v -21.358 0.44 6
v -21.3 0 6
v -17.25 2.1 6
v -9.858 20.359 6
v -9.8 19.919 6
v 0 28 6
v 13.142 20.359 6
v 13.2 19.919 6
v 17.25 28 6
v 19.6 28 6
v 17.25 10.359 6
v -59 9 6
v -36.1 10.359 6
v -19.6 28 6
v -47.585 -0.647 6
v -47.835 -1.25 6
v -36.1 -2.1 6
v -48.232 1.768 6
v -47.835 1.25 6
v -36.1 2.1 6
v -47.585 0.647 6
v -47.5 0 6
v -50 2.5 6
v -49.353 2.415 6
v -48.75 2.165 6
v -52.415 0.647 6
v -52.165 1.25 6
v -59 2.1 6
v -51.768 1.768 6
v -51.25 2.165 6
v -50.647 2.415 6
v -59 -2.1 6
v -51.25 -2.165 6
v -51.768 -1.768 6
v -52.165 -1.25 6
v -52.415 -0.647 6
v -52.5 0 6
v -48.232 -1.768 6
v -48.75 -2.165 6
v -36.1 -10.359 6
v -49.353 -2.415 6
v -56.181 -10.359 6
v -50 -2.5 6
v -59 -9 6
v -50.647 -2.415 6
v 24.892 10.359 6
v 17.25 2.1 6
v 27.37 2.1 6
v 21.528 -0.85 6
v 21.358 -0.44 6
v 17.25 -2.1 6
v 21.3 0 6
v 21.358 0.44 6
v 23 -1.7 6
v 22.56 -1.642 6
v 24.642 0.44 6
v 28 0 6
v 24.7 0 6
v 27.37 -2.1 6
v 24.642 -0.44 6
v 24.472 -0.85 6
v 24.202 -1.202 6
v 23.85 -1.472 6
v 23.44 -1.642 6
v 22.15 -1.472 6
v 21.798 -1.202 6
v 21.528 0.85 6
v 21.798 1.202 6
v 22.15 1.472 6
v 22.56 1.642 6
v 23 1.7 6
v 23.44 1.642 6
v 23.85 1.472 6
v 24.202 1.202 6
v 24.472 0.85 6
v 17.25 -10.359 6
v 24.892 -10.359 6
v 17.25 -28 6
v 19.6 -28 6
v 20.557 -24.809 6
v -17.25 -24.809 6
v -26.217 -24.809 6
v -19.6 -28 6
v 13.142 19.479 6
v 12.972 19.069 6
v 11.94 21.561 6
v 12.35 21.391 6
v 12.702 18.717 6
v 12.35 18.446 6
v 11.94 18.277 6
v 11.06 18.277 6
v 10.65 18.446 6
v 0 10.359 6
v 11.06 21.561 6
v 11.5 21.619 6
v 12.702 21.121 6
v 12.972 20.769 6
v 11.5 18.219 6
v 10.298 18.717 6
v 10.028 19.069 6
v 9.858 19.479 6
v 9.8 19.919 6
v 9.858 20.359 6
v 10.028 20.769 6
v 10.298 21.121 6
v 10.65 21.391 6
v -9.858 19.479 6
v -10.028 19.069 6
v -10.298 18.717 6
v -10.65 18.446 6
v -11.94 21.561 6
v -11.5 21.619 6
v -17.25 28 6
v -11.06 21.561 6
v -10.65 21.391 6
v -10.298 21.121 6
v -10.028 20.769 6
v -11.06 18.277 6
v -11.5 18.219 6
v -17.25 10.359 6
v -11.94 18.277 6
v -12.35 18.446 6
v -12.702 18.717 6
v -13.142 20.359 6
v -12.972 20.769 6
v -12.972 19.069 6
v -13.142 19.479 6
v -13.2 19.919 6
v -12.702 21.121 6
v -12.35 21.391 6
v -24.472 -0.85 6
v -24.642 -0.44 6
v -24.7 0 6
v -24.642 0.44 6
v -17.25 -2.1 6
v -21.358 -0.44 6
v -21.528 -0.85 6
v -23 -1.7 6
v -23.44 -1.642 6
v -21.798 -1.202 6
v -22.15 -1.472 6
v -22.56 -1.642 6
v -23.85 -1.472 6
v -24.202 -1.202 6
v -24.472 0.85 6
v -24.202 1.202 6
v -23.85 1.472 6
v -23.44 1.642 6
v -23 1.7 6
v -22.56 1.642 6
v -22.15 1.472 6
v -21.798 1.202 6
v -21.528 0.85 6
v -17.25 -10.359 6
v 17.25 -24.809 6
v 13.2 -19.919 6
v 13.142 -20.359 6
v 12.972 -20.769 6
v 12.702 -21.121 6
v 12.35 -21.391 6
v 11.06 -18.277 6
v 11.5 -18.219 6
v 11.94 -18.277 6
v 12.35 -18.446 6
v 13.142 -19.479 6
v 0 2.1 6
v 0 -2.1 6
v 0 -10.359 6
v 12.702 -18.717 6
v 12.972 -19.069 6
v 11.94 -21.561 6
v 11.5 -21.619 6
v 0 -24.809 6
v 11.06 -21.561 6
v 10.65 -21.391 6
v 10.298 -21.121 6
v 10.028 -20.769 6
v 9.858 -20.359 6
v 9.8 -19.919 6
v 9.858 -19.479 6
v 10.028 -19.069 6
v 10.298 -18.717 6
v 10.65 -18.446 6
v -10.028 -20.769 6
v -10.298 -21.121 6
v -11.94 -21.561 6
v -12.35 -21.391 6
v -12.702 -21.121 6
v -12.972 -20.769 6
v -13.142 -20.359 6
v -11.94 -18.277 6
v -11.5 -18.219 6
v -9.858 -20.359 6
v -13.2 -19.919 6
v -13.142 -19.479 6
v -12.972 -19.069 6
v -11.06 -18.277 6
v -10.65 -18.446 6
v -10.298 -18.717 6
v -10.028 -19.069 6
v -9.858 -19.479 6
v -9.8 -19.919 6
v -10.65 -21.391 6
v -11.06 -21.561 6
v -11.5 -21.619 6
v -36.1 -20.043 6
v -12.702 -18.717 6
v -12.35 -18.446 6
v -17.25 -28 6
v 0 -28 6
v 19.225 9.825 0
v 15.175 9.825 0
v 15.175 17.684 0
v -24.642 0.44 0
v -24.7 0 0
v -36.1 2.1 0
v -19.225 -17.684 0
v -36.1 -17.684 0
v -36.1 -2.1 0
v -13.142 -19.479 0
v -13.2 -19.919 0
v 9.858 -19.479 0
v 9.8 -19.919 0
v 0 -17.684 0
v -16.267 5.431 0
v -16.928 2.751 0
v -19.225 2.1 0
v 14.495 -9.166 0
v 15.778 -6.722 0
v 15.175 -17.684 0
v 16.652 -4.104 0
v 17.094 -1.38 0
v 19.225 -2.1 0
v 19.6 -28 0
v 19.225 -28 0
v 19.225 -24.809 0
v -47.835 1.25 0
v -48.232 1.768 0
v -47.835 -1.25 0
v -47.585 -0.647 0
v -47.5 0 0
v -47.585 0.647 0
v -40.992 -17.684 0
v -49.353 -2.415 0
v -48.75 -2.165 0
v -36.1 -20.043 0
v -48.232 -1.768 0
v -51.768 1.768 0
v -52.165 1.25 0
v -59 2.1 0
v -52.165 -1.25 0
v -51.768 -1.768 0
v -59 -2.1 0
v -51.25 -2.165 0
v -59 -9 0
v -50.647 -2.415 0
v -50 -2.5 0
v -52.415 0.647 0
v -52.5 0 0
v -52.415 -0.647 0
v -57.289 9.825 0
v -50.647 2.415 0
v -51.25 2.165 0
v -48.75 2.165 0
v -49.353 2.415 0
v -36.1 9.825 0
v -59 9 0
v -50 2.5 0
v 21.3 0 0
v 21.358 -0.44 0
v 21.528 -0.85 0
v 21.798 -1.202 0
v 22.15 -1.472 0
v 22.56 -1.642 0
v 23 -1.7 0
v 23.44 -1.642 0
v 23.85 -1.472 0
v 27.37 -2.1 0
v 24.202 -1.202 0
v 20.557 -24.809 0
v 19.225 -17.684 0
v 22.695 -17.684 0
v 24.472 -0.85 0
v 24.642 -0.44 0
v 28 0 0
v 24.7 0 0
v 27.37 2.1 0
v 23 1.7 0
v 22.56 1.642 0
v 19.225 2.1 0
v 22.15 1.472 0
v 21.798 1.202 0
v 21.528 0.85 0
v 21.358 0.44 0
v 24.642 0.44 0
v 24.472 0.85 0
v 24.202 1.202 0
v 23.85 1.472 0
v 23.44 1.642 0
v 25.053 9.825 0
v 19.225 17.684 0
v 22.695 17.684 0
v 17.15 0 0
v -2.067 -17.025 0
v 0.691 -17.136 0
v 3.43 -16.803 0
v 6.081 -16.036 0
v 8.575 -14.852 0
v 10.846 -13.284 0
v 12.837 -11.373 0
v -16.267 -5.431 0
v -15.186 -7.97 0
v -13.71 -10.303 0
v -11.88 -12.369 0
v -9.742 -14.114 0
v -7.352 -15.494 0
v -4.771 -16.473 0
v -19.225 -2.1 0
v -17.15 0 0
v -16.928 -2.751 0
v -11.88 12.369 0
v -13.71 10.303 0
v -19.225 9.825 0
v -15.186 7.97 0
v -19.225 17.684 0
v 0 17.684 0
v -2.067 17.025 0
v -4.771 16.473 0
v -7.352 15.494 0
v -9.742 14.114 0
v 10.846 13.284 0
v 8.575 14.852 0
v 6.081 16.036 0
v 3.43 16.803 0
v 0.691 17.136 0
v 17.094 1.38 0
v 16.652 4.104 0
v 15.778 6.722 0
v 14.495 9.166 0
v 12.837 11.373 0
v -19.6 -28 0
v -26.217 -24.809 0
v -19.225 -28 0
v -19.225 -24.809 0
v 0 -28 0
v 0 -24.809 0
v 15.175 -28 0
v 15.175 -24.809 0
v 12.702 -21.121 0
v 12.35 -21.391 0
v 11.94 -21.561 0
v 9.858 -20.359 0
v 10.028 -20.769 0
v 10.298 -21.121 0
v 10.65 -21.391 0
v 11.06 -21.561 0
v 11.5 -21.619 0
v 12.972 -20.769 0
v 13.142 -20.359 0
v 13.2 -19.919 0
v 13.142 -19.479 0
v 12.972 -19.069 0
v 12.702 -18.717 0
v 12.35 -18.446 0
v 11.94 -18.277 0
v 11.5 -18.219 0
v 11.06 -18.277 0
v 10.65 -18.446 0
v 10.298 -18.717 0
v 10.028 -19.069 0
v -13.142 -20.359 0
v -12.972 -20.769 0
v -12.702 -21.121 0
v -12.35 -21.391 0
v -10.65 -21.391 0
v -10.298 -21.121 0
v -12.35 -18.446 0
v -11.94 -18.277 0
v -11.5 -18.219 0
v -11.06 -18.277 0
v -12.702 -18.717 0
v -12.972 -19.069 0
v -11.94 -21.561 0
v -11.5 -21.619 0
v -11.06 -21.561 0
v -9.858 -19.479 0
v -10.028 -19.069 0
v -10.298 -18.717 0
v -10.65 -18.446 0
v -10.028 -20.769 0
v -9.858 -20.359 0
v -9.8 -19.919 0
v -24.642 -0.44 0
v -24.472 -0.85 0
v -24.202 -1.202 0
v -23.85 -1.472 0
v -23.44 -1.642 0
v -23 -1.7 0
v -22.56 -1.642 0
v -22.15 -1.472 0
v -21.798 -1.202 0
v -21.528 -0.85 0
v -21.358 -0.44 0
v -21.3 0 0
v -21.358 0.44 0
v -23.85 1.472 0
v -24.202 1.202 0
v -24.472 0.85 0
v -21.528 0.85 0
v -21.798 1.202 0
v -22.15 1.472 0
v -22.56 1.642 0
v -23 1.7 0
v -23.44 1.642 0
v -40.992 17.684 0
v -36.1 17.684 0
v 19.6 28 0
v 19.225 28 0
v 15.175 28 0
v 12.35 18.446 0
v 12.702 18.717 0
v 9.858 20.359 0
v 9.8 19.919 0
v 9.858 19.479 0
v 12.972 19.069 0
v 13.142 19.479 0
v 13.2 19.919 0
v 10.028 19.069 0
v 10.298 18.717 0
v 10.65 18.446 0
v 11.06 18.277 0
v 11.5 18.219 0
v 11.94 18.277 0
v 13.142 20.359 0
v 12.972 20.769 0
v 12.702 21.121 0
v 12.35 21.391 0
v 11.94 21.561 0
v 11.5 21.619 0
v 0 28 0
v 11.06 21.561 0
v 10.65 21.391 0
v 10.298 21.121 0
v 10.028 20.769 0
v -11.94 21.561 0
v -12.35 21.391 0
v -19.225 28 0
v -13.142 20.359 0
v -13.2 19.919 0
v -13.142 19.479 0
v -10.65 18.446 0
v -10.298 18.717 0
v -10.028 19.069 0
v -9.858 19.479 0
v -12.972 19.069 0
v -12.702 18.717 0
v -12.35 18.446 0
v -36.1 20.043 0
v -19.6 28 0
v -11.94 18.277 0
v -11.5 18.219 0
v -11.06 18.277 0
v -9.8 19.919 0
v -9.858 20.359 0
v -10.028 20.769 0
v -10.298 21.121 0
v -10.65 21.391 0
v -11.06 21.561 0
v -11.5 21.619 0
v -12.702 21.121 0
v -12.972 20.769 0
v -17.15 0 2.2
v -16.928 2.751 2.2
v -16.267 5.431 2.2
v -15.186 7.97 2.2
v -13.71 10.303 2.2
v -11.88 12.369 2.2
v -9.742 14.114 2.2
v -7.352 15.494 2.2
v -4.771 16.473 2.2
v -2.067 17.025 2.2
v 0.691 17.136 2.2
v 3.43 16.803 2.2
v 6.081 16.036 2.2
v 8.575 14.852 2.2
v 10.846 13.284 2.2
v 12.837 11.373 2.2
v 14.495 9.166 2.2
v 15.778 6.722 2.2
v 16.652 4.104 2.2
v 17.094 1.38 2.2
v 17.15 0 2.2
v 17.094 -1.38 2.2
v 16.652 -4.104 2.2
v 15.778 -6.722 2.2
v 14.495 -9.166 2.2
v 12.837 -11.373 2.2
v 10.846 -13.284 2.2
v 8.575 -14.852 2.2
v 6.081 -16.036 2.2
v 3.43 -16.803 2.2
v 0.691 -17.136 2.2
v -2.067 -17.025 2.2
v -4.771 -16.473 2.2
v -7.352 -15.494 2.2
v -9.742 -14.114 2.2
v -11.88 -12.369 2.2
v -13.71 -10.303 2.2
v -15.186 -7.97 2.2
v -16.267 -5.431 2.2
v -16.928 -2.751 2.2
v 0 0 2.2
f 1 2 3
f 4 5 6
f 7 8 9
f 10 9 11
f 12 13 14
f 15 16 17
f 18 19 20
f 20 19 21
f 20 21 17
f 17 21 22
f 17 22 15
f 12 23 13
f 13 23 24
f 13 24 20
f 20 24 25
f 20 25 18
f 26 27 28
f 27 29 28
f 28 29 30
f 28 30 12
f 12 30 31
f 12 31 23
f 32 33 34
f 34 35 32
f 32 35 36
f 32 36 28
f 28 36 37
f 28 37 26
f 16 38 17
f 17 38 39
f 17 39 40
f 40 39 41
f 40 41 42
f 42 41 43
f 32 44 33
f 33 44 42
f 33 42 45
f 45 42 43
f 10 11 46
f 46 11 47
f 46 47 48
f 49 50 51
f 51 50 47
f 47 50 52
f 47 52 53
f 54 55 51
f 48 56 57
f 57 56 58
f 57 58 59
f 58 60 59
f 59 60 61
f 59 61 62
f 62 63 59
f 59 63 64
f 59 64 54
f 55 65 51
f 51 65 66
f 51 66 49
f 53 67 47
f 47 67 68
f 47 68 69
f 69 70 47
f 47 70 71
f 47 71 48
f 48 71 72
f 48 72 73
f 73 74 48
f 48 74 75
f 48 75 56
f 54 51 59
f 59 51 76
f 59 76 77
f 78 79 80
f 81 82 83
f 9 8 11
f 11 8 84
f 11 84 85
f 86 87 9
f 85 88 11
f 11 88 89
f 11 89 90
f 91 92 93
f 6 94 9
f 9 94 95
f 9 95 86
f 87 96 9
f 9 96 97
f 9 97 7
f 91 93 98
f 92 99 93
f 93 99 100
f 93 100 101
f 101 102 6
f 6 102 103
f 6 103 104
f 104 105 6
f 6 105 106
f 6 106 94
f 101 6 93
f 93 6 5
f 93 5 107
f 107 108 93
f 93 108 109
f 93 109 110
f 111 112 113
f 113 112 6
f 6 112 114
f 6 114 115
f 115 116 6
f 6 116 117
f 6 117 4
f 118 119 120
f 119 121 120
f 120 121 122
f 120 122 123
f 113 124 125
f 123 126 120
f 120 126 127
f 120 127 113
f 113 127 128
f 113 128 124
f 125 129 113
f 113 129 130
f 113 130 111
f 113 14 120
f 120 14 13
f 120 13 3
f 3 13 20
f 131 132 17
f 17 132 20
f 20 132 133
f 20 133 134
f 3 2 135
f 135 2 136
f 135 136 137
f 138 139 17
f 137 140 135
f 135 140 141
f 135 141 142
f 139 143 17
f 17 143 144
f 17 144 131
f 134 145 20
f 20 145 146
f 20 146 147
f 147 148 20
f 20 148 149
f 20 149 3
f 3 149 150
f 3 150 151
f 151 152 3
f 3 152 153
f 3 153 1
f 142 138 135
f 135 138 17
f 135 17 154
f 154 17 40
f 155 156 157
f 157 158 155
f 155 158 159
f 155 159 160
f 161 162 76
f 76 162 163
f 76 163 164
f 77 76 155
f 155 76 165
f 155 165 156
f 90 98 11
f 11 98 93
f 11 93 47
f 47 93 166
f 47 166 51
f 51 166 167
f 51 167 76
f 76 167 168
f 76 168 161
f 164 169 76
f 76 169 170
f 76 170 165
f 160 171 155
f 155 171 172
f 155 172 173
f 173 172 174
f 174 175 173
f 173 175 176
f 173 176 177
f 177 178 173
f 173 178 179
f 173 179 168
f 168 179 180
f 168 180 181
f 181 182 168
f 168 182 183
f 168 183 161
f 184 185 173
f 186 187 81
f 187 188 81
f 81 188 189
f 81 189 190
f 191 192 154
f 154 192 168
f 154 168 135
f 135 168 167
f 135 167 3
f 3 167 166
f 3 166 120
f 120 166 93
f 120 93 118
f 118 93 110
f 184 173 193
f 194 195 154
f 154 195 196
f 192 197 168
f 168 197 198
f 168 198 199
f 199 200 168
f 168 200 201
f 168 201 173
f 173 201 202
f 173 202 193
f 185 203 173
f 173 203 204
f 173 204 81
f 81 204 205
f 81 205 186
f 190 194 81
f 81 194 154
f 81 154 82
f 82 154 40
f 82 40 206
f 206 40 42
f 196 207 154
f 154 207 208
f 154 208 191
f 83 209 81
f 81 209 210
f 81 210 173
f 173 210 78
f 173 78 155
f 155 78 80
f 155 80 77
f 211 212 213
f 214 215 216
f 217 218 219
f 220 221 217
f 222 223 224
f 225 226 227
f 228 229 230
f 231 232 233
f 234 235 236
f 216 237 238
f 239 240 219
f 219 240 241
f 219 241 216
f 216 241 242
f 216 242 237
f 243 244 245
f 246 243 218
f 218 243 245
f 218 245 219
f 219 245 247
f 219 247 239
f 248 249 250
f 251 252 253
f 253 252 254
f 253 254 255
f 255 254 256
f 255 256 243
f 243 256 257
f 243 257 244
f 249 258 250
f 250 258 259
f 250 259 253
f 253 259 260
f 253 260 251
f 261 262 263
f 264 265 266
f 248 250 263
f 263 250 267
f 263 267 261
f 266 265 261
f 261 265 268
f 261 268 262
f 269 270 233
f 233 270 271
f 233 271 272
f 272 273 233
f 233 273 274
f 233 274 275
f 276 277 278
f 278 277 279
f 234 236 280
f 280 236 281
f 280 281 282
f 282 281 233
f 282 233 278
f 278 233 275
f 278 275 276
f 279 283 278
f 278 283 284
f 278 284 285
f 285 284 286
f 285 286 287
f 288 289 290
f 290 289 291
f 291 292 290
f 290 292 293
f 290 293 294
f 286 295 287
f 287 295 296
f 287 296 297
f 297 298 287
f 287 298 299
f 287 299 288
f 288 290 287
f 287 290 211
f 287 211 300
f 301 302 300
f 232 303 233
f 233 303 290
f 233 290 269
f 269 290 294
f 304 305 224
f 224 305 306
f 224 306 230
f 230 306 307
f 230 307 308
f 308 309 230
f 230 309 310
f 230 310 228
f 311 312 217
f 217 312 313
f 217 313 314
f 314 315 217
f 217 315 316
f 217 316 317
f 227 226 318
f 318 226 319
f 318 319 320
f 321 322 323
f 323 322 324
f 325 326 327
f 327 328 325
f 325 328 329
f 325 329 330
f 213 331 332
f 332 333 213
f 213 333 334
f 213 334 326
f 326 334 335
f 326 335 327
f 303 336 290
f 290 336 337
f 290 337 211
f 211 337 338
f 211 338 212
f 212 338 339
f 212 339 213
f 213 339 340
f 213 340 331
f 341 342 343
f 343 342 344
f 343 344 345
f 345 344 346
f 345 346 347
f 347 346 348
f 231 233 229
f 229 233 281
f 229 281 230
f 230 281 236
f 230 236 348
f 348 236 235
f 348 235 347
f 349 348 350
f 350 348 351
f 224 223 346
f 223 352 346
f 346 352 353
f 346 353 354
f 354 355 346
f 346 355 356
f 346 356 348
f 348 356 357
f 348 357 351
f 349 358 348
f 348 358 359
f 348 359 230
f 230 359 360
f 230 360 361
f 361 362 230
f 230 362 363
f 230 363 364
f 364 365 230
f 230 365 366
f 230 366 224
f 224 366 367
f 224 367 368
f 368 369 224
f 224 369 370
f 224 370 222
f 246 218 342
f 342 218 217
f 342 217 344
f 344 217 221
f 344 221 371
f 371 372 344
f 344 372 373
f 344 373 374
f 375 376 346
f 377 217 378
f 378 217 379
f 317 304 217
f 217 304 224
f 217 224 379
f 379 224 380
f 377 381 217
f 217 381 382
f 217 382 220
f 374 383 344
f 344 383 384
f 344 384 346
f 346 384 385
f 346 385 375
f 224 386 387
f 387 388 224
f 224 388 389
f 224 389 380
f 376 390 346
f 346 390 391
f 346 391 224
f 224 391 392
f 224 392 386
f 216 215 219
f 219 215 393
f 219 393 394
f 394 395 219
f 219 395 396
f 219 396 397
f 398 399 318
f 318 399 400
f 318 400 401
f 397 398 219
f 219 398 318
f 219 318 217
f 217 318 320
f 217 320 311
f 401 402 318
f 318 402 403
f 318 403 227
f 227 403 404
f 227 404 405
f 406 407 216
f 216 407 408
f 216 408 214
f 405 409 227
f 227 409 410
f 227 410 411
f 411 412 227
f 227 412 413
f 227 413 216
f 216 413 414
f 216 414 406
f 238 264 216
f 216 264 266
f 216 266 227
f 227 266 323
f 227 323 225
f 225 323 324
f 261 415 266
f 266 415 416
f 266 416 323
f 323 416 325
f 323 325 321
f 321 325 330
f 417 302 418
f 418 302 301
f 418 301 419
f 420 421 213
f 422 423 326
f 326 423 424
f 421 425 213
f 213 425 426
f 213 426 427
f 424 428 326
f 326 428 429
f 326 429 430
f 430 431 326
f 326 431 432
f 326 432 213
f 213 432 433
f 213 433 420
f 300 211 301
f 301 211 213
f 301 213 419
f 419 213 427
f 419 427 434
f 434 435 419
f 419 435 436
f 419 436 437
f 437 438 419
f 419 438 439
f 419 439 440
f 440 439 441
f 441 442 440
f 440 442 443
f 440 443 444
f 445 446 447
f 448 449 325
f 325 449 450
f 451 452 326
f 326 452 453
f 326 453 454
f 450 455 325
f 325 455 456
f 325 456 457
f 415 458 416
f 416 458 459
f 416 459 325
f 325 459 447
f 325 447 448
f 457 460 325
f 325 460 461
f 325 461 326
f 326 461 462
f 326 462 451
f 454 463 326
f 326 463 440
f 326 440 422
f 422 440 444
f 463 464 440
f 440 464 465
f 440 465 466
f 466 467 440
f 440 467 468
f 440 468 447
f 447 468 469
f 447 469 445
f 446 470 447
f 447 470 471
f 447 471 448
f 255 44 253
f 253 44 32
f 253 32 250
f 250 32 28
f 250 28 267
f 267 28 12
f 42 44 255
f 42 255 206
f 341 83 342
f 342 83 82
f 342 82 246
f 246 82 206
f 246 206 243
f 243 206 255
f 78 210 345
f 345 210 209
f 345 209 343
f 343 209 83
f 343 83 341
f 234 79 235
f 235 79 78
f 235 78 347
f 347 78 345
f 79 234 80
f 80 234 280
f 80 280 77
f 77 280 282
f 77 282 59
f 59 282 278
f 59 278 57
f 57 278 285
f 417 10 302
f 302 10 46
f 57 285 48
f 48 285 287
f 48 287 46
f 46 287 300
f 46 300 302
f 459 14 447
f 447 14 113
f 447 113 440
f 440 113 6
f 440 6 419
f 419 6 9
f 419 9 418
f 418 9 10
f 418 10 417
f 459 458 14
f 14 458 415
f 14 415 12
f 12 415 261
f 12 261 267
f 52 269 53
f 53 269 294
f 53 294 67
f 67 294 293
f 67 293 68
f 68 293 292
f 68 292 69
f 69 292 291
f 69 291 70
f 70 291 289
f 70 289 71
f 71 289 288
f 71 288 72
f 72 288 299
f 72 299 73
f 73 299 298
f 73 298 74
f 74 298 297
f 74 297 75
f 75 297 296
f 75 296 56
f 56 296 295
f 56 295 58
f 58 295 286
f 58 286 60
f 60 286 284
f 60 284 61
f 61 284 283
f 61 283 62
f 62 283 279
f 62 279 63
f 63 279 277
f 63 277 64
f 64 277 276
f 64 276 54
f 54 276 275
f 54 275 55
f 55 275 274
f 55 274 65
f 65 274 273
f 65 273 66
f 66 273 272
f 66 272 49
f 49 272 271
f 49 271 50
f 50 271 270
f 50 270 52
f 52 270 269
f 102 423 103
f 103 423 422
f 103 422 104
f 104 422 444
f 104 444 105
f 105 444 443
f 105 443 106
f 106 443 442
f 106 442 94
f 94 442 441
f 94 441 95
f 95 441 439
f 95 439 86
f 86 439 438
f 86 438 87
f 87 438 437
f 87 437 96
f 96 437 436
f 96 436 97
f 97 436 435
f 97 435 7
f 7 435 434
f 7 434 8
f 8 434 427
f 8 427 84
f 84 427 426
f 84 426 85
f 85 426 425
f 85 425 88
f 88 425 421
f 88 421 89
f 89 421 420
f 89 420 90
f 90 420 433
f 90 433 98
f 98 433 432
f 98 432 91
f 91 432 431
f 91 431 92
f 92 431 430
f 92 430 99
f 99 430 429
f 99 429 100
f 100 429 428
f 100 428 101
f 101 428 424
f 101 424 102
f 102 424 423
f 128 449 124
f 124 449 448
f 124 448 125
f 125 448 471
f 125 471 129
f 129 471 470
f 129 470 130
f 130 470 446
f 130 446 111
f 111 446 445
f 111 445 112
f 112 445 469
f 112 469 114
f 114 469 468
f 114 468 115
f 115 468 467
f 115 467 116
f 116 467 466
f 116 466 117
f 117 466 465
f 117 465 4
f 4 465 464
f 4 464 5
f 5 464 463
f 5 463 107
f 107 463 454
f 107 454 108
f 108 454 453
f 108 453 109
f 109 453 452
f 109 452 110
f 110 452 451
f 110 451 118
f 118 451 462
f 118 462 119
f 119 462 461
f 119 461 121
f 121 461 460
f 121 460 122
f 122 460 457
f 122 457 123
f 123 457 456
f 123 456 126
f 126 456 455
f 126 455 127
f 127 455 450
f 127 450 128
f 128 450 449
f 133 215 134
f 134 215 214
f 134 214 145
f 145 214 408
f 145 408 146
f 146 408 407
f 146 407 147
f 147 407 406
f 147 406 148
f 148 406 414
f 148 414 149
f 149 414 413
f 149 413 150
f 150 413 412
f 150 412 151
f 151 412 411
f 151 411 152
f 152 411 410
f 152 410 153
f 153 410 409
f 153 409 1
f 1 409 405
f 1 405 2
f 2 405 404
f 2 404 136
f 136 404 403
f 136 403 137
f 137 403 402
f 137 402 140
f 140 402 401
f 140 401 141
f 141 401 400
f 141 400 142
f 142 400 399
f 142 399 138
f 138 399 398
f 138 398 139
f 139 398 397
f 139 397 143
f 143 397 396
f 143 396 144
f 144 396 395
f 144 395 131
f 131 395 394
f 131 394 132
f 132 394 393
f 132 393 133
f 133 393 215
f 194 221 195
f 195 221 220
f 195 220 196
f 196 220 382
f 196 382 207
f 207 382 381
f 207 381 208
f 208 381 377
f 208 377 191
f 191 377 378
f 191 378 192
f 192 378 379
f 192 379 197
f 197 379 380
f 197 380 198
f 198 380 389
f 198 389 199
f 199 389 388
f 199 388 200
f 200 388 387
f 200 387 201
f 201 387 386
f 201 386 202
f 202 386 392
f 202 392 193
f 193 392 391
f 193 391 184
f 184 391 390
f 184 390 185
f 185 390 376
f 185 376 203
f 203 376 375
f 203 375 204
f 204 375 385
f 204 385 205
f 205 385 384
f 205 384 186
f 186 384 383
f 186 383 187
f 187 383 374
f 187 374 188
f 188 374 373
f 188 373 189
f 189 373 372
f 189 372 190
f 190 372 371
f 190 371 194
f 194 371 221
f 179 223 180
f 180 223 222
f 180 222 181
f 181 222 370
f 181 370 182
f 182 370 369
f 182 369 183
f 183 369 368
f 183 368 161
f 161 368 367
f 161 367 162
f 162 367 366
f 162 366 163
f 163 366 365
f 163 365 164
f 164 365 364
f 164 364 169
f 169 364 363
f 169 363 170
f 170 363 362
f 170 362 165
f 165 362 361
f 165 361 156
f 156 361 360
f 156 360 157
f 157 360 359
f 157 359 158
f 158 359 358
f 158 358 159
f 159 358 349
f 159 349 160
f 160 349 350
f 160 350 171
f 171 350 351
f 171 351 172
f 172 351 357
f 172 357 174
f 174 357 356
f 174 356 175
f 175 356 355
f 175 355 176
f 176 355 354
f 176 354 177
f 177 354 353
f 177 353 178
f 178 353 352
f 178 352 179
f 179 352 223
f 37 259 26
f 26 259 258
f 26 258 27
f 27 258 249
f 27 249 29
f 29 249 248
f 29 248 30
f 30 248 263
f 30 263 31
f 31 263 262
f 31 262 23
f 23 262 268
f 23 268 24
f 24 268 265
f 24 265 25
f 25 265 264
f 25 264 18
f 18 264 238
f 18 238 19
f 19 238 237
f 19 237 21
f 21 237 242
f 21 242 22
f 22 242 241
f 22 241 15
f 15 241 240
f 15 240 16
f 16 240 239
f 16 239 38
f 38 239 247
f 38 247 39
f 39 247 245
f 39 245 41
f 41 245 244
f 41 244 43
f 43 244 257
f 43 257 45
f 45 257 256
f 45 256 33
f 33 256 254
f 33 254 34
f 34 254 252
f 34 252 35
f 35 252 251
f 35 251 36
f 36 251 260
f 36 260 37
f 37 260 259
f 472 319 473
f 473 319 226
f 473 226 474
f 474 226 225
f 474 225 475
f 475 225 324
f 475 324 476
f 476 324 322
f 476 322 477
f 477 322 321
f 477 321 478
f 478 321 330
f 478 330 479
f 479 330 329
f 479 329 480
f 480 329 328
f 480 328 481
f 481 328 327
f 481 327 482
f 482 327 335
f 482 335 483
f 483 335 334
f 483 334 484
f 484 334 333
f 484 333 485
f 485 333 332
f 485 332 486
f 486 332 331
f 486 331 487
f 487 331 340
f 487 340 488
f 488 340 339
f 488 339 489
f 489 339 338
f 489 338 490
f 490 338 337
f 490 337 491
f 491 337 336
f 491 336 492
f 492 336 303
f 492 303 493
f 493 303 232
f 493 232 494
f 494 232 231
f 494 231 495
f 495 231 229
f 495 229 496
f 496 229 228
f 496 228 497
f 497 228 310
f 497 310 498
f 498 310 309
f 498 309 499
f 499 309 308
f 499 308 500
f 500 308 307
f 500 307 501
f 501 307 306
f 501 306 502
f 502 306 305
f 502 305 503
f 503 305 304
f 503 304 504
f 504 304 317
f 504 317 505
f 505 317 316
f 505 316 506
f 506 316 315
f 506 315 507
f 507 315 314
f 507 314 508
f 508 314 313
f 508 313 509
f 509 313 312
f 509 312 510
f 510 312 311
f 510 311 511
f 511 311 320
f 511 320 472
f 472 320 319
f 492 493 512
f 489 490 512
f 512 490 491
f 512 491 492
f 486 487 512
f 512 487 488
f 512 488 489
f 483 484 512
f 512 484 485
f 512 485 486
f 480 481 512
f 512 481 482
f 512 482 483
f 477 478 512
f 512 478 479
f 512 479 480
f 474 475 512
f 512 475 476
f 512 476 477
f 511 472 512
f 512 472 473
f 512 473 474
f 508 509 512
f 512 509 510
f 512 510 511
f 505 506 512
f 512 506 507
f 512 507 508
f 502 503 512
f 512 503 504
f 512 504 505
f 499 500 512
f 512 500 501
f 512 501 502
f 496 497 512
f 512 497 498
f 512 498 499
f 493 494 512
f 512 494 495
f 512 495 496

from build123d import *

# Parameters (mm, degrees)
SK_CRANK_PLATE_R   = 1.7
SK_CRANK_PLATE_R_2 = 2.5
CRANK_PLATE_DEPTH  = 6
SK_PILOT_RECESS_R  = 17.15
PILOT_RECESS_DEPTH = 2.2


with BuildPart() as part:
    # SK_Crank_Plate → Crank_Plate (new body)
    with BuildSketch(Plane.XY):
        Polygon((-59, -9), (-19.6, -28), (19.6, -28), (28, 0), (19.6, 28), (-19.6, 28), (-59, 9), align=None)
        with Locations((23, 0)):
            Circle(SK_CRANK_PLATE_R, mode=Mode.SUBTRACT)
        with Locations((11.5, 19.918584287)):
            Circle(SK_CRANK_PLATE_R, mode=Mode.SUBTRACT)
        with Locations((-11.5, 19.918584287)):
            Circle(SK_CRANK_PLATE_R, mode=Mode.SUBTRACT)
        with Locations((-23, 0)):
            Circle(SK_CRANK_PLATE_R, mode=Mode.SUBTRACT)
        with Locations((-11.5, -19.918584287)):
            Circle(SK_CRANK_PLATE_R, mode=Mode.SUBTRACT)
        with Locations((11.5, -19.918584287)):
            Circle(SK_CRANK_PLATE_R, mode=Mode.SUBTRACT)
        with Locations((-50, 0)):
            Circle(SK_CRANK_PLATE_R_2, mode=Mode.SUBTRACT)
    extrude(amount=CRANK_PLATE_DEPTH)

    # SK_Pilot_Recess → Pilot_Recess (cut)
    with BuildSketch(Plane.XY):
        Circle(SK_PILOT_RECESS_R)
    extrude(amount=PILOT_RECESS_DEPTH, mode=Mode.SUBTRACT)


solid = part.part
